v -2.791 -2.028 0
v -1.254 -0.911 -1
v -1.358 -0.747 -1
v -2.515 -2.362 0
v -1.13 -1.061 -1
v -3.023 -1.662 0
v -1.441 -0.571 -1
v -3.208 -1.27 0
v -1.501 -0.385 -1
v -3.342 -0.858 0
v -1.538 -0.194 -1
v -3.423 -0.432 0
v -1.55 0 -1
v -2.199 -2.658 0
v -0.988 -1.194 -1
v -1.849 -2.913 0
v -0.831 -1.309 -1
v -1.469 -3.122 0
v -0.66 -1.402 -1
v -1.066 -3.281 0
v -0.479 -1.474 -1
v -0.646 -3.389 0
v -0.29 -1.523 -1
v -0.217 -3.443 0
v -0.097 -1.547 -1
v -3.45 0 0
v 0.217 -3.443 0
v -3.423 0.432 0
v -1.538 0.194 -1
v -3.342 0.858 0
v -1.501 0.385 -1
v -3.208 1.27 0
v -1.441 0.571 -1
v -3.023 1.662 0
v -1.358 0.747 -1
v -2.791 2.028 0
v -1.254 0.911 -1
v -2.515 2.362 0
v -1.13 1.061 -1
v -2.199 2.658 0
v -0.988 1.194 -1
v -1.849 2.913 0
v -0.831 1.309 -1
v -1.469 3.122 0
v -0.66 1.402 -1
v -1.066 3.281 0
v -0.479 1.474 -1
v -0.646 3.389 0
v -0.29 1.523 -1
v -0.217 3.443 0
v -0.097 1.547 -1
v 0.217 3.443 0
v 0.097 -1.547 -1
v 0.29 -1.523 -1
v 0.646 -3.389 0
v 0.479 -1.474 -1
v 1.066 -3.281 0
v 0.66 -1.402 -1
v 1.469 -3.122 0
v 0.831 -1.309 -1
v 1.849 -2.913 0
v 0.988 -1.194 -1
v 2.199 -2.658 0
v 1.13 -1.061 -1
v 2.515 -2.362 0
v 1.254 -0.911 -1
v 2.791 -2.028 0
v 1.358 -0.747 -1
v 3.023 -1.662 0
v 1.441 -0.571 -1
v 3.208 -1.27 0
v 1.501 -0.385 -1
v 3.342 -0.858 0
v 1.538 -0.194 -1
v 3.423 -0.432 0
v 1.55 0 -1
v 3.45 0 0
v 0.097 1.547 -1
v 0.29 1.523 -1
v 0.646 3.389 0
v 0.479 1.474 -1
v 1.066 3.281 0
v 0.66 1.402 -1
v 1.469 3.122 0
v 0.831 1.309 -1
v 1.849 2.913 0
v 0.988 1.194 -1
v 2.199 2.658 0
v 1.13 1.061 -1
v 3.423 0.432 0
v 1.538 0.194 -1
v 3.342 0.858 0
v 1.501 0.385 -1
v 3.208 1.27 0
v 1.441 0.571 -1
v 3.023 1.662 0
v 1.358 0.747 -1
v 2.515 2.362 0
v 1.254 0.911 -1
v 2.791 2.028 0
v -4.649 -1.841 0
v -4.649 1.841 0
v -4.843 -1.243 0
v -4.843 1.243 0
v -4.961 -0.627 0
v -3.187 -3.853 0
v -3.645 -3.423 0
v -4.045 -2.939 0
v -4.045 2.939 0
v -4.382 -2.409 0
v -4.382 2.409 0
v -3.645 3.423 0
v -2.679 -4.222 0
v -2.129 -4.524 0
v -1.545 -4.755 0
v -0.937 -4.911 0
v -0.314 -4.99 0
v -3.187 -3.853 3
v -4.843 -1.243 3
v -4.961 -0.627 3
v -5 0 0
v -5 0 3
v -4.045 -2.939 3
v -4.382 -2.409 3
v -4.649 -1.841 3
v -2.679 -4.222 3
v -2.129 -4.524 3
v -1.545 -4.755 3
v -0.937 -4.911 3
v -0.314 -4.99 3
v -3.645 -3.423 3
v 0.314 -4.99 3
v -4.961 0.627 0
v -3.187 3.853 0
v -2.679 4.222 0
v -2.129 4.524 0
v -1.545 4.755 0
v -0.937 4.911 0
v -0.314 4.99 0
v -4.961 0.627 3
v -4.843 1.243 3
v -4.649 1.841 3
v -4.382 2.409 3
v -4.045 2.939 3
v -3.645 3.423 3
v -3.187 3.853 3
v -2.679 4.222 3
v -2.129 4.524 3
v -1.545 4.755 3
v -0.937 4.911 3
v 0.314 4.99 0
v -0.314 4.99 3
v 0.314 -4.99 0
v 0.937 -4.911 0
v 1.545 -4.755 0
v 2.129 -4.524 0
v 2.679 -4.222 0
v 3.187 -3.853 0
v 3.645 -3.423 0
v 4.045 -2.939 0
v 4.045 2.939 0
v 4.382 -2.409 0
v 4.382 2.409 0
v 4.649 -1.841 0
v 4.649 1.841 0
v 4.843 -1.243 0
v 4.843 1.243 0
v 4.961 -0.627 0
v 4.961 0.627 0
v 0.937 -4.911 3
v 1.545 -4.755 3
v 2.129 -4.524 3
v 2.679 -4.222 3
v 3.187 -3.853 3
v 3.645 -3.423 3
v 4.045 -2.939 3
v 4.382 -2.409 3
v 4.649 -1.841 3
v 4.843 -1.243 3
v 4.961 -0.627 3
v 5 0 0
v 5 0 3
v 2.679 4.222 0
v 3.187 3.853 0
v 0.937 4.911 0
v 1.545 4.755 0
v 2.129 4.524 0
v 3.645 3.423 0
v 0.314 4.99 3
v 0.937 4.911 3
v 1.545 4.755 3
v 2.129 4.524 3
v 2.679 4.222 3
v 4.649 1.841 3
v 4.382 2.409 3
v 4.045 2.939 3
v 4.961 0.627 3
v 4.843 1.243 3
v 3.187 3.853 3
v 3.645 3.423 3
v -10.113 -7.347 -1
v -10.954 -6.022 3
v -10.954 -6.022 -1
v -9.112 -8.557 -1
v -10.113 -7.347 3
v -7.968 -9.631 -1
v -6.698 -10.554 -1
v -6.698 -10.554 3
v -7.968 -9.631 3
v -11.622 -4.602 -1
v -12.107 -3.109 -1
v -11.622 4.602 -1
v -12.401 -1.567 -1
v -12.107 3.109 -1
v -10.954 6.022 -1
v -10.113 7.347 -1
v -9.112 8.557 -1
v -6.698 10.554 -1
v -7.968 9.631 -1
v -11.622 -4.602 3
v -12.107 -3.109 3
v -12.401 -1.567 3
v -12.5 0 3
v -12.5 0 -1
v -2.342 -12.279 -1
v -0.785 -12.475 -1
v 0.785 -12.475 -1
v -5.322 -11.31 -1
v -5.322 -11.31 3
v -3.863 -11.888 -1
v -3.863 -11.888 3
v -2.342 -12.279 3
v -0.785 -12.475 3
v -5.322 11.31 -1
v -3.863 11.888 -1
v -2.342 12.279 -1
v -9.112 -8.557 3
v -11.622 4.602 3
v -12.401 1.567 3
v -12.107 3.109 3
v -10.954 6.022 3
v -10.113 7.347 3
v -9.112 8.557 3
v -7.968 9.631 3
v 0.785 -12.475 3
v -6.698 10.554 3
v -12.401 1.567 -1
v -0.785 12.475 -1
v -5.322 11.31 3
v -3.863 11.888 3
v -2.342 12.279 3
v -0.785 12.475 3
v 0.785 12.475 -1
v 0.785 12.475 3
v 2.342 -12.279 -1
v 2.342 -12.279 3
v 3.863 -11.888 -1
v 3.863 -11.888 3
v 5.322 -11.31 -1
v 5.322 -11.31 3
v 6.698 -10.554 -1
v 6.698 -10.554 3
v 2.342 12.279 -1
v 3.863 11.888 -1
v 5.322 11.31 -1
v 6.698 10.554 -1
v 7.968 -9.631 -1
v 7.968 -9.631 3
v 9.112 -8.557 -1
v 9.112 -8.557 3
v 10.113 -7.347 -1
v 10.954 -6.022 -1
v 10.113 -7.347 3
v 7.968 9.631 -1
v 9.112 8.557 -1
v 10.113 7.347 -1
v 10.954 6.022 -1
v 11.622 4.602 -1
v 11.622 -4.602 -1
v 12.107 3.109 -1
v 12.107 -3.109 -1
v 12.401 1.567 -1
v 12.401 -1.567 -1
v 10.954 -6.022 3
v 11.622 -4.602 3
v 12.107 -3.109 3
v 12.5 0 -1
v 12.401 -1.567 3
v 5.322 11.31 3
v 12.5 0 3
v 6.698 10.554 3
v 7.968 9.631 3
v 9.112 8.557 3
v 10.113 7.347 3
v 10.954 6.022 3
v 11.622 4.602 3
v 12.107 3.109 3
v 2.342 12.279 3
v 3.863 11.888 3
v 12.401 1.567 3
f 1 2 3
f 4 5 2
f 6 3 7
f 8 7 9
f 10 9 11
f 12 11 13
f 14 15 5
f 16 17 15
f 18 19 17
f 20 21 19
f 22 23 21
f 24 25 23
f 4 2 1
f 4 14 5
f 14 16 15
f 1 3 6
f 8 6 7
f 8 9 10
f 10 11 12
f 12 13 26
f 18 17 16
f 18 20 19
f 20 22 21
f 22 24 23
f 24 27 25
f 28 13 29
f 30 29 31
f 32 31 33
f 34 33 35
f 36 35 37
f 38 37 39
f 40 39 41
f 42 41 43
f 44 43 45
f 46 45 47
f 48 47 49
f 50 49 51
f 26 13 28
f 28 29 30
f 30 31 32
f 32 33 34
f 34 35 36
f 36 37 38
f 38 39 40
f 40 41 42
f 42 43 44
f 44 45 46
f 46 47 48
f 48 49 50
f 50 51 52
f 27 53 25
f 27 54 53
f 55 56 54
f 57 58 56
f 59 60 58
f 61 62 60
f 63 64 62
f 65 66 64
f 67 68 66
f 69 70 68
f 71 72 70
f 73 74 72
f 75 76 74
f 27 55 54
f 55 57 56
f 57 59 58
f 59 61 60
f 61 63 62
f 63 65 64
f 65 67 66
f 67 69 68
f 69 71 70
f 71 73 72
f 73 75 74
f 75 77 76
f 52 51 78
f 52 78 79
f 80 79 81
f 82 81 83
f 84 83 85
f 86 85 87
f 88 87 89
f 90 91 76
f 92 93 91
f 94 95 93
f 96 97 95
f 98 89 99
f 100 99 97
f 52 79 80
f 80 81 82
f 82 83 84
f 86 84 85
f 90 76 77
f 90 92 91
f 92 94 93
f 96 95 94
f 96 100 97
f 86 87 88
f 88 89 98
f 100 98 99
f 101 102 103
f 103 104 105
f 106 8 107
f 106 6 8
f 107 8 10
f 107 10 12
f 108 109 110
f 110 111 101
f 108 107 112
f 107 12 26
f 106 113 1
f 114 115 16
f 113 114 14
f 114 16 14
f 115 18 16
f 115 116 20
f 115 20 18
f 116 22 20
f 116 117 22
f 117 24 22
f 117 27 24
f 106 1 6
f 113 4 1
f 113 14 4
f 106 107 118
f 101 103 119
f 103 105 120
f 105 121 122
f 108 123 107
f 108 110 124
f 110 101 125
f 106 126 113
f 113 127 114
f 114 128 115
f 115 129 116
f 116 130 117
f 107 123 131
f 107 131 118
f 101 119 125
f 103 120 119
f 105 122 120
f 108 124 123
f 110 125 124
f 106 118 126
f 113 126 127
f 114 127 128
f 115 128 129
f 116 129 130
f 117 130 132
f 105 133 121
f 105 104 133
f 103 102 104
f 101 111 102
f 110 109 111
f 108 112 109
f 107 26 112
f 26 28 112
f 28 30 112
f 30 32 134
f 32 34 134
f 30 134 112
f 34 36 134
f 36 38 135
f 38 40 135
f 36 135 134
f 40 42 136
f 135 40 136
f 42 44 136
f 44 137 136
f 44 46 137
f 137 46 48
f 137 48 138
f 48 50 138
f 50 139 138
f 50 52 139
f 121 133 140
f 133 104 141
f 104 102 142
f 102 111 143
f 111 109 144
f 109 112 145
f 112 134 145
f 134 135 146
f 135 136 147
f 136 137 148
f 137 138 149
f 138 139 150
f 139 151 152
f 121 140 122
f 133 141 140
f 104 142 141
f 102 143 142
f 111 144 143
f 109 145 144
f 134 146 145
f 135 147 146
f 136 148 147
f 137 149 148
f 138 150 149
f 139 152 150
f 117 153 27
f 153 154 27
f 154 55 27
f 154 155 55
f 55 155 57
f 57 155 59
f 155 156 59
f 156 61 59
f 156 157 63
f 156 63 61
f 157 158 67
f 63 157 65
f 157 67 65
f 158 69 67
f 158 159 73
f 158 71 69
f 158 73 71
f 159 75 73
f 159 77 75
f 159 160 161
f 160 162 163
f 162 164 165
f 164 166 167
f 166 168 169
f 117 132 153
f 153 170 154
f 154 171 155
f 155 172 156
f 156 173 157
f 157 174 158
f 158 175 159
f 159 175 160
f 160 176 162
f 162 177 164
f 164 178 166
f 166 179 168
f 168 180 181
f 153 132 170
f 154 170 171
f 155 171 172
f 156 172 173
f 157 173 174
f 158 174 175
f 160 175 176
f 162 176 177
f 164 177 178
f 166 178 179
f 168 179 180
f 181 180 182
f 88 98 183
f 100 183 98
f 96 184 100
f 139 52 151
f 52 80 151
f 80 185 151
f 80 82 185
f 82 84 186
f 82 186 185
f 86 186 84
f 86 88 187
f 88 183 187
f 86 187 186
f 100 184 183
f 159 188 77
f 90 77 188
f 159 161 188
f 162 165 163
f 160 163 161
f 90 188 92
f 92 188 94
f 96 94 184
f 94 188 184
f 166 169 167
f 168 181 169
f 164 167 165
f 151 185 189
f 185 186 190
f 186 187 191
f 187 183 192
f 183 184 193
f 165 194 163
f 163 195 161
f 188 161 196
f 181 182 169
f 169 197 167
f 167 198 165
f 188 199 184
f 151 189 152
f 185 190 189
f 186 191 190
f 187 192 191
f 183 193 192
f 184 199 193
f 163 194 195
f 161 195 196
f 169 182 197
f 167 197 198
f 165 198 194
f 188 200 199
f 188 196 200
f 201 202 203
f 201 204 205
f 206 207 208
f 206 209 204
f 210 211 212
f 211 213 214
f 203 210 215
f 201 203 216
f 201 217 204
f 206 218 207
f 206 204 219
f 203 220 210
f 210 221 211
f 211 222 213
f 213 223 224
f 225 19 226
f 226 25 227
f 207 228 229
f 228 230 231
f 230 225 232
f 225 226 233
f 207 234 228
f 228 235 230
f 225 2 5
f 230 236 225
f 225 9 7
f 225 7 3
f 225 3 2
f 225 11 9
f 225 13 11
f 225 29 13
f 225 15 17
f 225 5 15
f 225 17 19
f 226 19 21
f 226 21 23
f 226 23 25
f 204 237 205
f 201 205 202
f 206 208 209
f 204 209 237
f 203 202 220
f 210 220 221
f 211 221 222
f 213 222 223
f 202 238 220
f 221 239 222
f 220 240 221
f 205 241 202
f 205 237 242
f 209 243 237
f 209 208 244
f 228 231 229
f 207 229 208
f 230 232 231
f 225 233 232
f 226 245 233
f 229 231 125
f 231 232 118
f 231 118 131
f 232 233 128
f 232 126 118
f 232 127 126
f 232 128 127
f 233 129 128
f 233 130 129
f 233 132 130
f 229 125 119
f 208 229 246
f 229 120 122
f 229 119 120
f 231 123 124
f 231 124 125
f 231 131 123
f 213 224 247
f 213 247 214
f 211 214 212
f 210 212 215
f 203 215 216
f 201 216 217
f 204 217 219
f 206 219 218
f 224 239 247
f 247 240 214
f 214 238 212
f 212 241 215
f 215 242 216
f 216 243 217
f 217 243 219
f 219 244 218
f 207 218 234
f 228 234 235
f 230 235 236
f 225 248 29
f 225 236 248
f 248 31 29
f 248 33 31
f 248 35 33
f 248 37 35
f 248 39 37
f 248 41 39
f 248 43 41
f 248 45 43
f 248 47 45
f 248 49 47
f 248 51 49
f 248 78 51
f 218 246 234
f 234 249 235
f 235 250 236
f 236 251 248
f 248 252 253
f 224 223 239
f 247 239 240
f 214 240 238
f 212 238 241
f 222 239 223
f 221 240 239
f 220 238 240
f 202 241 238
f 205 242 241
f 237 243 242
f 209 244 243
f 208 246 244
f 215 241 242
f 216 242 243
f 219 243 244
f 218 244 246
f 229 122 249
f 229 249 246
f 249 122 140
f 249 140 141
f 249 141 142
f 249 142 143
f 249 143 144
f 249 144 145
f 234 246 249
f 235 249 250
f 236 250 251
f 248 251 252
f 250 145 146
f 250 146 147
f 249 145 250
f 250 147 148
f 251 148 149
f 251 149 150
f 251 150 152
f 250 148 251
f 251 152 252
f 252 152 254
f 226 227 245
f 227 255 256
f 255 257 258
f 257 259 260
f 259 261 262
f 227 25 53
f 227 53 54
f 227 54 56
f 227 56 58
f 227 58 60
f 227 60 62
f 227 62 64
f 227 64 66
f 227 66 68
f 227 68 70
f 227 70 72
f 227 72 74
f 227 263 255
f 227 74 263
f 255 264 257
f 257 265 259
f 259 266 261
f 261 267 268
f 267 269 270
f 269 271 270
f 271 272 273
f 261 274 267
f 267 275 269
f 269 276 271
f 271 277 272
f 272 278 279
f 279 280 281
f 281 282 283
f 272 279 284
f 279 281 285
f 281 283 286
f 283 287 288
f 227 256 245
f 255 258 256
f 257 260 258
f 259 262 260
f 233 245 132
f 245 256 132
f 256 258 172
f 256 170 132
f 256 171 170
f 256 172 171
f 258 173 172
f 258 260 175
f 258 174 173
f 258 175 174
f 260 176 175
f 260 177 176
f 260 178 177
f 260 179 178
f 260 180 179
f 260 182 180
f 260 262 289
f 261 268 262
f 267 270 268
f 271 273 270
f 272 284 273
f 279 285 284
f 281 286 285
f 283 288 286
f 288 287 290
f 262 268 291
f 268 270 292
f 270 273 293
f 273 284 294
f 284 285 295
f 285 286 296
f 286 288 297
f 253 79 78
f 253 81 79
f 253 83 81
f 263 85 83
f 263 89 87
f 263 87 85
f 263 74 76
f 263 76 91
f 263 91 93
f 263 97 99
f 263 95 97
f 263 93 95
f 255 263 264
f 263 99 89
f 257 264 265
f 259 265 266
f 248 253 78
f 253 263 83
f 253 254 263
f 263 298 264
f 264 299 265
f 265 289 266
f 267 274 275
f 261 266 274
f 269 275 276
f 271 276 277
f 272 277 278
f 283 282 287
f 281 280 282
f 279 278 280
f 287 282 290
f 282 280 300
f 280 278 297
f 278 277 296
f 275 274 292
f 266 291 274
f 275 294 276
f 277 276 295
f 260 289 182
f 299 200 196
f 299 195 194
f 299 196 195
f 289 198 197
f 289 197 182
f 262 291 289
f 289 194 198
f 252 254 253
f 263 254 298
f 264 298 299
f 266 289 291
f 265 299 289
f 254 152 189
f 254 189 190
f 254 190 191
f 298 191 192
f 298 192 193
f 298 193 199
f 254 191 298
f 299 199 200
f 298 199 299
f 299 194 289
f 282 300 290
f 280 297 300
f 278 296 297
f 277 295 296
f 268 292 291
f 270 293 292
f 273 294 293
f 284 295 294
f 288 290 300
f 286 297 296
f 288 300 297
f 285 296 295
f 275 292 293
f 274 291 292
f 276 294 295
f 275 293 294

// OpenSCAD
$fn = 50;

difference() {
	union() {
		translate(v = [0, 0, -1.0]) {
			cylinder(h = 4.0, r = 12.5);
		}
	}
	union() {
		translate(v = [0, 0, 0]) {
			rotate(a = [0, 0, 0]) {
				difference() {
					union() {
						translate(v = [0, 0, -4.0]) {
							cylinder(h = 4.0, r = 1.25);
						}
						translate(v = [0, 0, -1.0]) {
							cylinder(h = 1.0, r1 = 1.55, r2 = 3.45);
						}
						translate(v = [0, 0, -4.0]) {
							cylinder(h = 4.0, r = 1.55);
						}
						translate(v = [0, 0, -4.0]) {
							cylinder(h = 4.0, r = 1.25);
						}
					}
					union();
				}
			}
		}
		#cylinder(h = 3, r = 5.0);
	}
}
